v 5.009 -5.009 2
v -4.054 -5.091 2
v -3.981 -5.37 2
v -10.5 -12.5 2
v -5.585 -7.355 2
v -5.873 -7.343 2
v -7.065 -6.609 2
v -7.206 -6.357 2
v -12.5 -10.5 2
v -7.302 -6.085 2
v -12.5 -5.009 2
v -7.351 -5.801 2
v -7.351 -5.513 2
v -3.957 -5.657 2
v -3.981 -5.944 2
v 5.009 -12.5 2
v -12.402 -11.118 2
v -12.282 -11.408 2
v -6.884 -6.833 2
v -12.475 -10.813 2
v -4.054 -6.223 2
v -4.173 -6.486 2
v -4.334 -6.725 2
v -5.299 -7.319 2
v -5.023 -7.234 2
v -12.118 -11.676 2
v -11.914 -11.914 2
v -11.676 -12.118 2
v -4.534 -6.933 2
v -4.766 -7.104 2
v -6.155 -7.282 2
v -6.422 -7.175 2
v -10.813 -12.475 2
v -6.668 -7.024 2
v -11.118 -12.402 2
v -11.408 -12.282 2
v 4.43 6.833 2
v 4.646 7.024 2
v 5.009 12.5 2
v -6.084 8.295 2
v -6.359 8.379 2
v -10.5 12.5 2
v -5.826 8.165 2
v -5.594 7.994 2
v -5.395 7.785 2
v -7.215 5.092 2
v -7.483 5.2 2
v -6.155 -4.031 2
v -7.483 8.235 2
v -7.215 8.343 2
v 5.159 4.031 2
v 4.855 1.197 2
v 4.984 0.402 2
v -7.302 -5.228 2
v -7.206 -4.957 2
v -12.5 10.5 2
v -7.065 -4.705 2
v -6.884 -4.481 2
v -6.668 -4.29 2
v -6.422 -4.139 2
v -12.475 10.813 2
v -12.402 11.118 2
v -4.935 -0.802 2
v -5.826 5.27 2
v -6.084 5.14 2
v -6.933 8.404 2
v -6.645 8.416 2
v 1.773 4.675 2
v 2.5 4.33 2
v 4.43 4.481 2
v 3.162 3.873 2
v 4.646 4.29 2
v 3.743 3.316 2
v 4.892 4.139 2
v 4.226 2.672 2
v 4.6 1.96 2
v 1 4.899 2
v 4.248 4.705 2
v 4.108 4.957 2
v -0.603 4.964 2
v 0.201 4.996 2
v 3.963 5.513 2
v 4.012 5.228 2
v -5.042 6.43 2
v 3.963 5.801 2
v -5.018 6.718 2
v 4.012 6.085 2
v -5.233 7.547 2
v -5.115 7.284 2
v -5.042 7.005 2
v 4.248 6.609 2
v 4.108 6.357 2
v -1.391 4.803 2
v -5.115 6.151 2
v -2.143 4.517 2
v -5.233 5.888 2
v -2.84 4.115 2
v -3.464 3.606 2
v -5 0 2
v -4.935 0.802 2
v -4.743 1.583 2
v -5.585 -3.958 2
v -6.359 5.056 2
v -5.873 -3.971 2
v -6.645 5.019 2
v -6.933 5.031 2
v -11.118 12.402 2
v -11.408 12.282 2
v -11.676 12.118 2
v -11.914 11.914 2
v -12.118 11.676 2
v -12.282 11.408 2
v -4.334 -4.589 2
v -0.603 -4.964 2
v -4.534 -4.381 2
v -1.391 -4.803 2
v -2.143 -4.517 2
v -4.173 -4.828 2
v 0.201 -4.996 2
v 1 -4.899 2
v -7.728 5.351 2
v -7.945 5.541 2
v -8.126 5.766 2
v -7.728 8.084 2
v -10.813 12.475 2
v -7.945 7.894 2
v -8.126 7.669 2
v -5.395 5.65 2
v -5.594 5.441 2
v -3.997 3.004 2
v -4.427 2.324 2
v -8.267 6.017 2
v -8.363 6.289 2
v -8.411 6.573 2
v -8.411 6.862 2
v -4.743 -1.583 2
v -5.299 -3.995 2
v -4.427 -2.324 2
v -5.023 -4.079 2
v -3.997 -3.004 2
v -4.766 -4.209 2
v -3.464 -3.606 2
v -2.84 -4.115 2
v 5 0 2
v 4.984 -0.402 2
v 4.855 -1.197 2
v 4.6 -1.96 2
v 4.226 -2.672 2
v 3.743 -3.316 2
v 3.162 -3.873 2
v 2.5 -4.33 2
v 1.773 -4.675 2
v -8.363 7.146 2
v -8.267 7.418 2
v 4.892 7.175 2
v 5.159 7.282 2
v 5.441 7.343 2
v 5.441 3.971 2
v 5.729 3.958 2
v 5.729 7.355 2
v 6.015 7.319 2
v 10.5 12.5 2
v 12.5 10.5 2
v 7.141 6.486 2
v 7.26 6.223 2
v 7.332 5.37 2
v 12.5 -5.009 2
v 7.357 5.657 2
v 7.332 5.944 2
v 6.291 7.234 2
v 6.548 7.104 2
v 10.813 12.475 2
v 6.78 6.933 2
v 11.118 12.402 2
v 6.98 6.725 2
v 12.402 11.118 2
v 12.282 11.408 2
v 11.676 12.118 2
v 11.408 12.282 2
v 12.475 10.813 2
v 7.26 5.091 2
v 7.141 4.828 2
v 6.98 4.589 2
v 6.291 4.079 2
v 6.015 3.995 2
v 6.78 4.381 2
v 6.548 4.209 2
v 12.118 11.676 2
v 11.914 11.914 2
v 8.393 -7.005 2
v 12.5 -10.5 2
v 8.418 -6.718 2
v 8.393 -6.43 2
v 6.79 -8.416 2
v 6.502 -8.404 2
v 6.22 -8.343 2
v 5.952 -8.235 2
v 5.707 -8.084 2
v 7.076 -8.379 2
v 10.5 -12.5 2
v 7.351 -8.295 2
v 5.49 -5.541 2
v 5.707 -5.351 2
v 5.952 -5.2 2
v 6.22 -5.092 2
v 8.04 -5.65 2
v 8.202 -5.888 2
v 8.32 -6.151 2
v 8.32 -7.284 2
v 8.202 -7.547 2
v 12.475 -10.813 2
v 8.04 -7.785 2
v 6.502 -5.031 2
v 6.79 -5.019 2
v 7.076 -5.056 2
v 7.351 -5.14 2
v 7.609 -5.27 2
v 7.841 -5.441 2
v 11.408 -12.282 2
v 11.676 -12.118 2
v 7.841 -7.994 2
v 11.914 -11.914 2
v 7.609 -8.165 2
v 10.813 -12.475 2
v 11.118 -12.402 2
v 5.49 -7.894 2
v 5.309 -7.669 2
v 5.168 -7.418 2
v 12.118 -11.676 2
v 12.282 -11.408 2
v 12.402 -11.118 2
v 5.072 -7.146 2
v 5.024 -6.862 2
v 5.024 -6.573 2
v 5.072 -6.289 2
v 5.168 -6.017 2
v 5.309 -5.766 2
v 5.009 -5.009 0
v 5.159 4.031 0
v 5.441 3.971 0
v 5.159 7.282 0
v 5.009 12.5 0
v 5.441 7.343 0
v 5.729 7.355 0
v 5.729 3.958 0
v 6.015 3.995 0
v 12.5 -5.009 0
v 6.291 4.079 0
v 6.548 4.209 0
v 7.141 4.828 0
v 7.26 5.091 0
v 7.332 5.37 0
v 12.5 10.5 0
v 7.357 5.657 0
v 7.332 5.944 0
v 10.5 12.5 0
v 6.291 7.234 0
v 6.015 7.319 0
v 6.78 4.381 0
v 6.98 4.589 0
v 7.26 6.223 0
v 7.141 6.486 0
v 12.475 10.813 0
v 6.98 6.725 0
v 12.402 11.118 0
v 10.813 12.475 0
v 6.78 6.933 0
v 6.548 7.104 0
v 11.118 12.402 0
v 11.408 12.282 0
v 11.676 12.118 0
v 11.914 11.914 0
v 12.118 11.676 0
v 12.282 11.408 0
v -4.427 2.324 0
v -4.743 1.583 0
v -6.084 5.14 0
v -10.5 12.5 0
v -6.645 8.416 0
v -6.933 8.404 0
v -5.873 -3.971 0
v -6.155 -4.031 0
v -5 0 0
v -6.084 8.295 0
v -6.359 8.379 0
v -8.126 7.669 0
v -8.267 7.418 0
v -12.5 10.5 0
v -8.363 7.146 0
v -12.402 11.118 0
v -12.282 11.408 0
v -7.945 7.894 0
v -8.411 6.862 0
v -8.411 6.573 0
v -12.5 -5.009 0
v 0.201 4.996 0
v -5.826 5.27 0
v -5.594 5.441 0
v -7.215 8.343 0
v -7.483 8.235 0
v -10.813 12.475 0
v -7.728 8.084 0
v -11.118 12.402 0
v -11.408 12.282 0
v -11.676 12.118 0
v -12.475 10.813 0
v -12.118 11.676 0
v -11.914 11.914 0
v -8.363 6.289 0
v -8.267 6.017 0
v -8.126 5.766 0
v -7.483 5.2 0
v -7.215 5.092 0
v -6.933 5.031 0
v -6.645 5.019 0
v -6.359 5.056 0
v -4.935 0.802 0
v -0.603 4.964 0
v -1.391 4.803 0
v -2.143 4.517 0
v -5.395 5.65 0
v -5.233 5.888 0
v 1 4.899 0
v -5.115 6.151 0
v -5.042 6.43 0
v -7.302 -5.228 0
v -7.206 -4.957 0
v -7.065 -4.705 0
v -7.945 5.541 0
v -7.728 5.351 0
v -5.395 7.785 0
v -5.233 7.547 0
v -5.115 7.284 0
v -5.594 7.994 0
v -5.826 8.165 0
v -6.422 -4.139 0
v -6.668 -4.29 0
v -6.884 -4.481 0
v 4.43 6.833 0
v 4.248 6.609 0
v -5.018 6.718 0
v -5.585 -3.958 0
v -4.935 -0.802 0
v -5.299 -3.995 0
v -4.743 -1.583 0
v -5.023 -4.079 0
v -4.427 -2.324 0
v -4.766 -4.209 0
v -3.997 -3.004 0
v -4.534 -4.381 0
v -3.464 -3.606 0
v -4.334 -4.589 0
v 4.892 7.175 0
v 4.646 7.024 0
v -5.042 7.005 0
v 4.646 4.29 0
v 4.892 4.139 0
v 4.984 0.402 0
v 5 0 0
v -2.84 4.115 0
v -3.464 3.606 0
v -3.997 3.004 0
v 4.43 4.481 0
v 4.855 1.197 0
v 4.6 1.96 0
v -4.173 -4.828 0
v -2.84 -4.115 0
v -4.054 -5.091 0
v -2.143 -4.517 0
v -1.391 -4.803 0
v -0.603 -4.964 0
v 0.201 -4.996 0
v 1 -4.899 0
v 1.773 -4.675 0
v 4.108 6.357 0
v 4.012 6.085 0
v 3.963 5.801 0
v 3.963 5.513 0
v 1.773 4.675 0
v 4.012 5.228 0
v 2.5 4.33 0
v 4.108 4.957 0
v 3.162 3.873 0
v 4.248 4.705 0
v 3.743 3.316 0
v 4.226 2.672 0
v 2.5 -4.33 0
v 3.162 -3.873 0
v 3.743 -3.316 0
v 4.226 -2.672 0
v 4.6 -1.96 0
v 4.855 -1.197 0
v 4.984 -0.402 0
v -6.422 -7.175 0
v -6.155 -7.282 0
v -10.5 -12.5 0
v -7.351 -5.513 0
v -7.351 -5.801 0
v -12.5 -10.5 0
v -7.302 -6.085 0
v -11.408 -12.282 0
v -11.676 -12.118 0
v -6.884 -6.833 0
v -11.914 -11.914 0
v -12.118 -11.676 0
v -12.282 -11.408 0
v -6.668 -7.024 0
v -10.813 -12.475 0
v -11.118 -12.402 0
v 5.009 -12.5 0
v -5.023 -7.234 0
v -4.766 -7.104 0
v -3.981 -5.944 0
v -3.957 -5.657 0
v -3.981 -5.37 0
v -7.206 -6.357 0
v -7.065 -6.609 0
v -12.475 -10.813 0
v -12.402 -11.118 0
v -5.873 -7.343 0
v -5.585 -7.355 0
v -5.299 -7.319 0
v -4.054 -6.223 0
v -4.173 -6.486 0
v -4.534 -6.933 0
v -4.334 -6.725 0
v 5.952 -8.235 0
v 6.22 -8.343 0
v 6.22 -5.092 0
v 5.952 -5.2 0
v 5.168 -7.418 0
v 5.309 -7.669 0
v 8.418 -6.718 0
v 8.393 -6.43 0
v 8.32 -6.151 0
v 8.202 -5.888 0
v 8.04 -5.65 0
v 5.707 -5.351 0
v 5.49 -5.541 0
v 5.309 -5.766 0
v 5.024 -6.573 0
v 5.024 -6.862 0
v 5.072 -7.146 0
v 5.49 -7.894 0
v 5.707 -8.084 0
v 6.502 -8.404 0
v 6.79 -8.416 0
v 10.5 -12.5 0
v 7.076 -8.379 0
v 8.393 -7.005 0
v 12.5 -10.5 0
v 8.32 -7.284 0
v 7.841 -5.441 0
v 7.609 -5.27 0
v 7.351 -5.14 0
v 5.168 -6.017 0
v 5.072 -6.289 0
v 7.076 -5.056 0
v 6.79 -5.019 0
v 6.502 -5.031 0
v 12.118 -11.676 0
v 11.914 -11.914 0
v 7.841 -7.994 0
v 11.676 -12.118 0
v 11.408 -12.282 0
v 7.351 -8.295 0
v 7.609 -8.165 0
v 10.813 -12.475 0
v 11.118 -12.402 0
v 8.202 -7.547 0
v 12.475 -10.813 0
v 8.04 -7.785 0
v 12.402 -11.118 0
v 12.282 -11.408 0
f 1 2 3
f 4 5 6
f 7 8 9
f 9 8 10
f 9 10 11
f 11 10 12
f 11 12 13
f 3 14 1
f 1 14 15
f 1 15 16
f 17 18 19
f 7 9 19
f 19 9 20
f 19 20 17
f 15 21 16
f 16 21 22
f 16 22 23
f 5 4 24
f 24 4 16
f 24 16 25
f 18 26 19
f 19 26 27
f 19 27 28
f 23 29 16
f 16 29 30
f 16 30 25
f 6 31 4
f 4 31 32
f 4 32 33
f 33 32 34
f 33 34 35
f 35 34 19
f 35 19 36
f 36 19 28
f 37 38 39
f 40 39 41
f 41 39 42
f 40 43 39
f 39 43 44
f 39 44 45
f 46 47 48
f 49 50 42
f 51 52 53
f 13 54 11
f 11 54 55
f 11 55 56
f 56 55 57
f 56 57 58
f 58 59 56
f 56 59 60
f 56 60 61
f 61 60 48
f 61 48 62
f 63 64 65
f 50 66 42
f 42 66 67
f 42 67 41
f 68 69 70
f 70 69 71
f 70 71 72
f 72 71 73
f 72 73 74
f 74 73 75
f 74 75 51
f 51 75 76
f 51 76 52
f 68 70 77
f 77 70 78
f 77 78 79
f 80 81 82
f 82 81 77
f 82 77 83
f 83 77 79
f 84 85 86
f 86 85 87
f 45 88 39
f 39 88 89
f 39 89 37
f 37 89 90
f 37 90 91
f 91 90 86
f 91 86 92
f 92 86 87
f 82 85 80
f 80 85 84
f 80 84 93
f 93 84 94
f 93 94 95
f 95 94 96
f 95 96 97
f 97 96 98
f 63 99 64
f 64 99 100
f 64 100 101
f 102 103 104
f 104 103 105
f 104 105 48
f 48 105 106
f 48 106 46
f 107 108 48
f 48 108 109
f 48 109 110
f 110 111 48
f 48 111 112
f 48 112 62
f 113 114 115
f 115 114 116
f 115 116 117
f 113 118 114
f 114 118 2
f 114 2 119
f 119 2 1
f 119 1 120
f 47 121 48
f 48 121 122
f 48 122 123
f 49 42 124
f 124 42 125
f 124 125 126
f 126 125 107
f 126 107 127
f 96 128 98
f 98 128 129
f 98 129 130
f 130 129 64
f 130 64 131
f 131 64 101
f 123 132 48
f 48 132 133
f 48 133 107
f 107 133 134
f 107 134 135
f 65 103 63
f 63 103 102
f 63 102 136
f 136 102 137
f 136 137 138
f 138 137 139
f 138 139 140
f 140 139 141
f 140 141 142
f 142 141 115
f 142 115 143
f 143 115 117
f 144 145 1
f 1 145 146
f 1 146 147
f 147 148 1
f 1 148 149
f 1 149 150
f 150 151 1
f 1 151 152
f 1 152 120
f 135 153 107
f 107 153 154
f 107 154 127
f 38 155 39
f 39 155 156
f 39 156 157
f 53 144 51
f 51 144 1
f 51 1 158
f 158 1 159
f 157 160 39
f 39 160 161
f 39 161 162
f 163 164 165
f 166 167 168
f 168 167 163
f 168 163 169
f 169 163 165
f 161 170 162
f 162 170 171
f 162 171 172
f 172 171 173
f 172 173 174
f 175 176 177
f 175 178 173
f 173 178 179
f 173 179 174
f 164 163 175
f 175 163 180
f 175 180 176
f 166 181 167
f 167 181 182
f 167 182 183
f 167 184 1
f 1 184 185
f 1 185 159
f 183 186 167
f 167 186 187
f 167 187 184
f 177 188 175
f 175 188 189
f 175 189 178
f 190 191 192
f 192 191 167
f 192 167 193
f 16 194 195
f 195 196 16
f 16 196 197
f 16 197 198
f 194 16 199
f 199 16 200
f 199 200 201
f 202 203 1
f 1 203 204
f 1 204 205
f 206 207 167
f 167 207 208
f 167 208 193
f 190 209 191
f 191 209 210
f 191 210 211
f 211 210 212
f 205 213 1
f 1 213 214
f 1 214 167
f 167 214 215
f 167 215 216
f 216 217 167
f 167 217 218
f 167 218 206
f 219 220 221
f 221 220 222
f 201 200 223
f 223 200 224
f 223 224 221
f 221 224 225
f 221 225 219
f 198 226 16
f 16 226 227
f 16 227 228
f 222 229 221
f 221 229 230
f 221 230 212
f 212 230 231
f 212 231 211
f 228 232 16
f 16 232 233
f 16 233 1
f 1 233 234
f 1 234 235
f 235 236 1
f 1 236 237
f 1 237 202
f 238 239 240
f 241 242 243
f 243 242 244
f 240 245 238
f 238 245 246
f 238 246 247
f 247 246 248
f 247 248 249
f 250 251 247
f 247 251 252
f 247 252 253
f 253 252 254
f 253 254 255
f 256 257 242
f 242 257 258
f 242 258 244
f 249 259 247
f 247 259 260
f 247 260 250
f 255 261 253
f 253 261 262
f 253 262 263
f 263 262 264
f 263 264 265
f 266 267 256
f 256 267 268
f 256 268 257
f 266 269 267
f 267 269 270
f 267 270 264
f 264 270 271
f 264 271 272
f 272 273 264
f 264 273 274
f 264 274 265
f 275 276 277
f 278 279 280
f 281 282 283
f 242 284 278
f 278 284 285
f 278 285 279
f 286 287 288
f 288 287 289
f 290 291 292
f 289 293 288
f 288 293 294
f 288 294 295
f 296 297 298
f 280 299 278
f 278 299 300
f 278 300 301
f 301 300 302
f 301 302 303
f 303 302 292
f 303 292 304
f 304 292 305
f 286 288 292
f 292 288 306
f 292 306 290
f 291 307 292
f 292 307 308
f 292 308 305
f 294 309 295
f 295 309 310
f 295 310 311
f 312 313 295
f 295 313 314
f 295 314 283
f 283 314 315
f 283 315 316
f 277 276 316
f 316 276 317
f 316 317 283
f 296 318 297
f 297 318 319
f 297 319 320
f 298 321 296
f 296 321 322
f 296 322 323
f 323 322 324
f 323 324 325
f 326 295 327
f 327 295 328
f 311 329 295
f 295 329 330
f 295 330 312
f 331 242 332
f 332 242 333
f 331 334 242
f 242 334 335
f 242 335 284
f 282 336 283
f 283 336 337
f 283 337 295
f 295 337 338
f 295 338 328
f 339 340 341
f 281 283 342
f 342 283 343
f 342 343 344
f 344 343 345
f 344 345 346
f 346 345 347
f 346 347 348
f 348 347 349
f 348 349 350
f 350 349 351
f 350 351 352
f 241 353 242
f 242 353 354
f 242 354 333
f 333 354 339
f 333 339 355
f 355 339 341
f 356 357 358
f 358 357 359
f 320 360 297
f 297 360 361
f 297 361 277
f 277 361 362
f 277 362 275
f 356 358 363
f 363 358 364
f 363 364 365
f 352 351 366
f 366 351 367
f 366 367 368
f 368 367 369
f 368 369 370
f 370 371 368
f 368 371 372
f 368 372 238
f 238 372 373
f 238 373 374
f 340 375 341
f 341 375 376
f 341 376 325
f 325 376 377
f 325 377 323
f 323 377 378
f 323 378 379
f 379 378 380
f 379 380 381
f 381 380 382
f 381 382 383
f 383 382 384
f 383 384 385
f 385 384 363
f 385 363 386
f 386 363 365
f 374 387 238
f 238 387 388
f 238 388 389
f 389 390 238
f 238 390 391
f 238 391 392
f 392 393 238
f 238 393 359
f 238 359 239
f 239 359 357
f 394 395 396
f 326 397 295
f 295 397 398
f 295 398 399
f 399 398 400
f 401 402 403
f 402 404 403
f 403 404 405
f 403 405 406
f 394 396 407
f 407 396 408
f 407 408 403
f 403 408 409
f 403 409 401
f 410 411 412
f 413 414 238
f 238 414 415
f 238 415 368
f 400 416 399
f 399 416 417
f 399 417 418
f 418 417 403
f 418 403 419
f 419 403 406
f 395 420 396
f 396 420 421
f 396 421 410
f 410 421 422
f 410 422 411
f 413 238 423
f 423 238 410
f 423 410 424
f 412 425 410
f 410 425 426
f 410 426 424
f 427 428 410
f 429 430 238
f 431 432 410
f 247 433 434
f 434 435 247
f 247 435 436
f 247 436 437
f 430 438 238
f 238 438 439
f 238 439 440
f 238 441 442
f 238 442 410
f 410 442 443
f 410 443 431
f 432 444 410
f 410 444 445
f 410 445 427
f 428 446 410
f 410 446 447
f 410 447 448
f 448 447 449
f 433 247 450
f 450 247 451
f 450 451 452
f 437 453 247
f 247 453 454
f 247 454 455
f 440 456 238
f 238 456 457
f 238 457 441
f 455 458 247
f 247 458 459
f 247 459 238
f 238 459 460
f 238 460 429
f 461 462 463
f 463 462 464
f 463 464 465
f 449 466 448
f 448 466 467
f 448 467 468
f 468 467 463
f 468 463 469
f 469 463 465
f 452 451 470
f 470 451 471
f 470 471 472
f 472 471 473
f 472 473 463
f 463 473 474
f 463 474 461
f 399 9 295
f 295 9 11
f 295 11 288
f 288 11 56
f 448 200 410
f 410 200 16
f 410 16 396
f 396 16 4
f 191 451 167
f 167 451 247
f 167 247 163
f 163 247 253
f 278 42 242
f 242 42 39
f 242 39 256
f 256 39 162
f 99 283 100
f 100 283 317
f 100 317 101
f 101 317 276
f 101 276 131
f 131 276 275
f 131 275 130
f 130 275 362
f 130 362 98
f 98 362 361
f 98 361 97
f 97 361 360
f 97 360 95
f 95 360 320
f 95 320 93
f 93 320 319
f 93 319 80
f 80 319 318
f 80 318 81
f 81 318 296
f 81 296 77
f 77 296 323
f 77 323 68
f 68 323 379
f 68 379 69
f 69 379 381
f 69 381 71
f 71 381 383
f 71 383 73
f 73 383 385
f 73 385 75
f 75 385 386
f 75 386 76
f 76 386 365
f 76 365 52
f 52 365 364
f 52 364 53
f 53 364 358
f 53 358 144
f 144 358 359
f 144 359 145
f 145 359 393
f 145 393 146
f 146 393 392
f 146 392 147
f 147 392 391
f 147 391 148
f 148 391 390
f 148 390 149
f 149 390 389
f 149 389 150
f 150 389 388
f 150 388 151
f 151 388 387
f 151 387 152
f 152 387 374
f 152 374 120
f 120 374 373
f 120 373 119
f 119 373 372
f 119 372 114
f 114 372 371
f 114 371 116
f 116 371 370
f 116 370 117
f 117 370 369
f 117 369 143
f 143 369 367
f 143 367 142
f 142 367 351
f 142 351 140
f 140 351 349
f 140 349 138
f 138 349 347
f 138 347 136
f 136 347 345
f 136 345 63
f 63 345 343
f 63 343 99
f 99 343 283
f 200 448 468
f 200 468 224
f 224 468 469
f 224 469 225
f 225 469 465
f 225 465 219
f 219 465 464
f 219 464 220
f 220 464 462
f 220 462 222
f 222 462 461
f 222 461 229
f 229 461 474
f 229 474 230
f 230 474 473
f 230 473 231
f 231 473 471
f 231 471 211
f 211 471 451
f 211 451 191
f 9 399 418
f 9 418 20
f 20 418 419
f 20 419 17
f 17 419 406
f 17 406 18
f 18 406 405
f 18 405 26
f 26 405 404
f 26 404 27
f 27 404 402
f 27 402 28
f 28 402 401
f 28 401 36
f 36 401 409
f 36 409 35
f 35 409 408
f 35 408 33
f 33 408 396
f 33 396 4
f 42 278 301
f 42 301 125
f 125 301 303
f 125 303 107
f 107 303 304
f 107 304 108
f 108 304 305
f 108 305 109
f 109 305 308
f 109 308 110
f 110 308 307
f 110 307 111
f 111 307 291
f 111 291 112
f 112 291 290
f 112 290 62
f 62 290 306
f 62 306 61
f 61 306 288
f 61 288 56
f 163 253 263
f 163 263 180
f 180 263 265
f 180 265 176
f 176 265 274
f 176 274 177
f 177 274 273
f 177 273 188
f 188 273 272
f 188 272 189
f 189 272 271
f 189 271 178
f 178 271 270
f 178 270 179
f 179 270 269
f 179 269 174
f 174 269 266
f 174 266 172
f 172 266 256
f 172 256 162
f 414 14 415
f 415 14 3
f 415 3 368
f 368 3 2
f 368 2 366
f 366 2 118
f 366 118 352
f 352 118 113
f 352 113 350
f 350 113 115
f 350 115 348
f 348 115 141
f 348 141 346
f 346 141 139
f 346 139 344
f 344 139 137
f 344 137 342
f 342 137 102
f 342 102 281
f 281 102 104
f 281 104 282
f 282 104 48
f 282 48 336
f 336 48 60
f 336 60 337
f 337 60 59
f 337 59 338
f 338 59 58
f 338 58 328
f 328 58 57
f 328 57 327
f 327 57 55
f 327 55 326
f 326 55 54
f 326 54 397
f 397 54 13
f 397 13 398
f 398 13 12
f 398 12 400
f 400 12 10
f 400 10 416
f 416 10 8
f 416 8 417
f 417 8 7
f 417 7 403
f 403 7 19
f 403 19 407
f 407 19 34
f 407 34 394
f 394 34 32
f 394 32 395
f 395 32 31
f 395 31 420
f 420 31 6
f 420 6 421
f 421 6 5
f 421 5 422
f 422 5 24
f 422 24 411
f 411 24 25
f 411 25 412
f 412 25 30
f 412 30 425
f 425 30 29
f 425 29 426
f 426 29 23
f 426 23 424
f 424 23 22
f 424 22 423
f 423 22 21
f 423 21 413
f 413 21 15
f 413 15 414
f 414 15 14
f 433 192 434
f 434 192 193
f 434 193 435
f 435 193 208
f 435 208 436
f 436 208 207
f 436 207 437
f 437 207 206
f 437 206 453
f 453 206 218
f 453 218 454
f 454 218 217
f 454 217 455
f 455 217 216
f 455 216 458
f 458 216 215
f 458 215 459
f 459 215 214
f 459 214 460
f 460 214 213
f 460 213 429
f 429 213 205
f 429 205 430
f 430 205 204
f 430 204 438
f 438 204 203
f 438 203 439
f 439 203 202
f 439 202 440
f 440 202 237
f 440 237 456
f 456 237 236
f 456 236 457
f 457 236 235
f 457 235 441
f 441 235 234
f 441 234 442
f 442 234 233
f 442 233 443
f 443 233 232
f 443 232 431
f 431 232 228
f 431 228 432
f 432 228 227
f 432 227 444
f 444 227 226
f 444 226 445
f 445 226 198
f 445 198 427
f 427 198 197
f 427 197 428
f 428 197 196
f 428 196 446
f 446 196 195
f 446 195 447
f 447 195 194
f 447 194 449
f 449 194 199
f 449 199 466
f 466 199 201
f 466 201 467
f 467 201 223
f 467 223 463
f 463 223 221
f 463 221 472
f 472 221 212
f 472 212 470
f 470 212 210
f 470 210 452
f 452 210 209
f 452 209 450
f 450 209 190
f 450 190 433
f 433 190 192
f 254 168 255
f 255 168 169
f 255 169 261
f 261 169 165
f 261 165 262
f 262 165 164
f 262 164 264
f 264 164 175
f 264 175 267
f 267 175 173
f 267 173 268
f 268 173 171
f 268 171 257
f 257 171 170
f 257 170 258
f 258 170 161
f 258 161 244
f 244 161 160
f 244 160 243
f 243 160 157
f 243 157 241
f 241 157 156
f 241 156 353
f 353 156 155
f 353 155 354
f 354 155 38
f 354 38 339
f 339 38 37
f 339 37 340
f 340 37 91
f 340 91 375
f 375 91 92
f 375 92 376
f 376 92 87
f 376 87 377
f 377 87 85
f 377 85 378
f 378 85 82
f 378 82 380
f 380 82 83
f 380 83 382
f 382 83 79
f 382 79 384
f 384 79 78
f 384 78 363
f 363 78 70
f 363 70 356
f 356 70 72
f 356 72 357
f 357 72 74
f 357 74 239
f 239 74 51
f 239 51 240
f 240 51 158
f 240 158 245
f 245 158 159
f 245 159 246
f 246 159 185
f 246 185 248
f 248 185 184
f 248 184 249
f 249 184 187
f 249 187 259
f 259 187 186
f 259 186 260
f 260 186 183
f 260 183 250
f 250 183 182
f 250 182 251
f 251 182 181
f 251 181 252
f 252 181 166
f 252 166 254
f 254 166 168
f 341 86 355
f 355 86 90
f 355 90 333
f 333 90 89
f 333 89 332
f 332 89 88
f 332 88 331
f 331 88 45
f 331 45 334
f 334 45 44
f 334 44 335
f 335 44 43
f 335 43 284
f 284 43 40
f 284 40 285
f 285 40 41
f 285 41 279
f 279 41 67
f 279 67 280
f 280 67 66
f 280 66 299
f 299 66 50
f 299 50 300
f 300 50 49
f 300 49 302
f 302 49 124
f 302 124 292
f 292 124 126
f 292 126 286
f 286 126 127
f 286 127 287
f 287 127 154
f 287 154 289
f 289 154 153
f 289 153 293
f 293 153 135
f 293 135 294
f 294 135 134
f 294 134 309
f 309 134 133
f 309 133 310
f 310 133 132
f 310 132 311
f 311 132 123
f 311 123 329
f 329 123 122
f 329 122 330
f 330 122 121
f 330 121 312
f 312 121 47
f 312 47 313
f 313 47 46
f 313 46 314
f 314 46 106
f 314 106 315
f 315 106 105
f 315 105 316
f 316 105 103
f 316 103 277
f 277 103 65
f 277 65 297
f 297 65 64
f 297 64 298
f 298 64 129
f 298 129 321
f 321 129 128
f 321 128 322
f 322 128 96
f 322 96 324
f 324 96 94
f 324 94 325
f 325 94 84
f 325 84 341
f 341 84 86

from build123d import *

# Parameters (mm, degrees)
SKETCH1_W            = 25
SKETCH1_H            = 25
SKETCH1_R            = 5
BOSS_EXTRUDE2_DEPTH  = 2
FILLET2_R            = 2
M3_CLEARANCE_HOLE1_D = 3.4


with BuildPart() as part:
    # Sketch1 → Boss-Extrude2 (new body)
    with BuildSketch(Plane.XY):
        Rectangle(SKETCH1_W, SKETCH1_H)
        Circle(SKETCH1_R, mode=Mode.SUBTRACT)
    extrude(amount=BOSS_EXTRUDE2_DEPTH)

    # Fillet2
    fillet2_edges = [part.edges().sort_by_distance(p)[0] for p in [
        (-12.5, 12.5, 1),
        (12.5, 12.5, 1),
        (12.5, -12.5, 1),
        (-12.5, -12.5, 1),
    ]]
    fillet(fillet2_edges, radius=FILLET2_R)

    # M3 Clearance Hole1 (through all)
    with Locations(Plane.XY.offset(2)):
        with Locations((-6.717514421, 6.717514421), (5.656854249, 5.656854249), (6.717514421, -6.717514421), (-5.656854249, -5.656854249)):
            Hole(M3_CLEARANCE_HOLE1_D / 2)


solid = part.part
